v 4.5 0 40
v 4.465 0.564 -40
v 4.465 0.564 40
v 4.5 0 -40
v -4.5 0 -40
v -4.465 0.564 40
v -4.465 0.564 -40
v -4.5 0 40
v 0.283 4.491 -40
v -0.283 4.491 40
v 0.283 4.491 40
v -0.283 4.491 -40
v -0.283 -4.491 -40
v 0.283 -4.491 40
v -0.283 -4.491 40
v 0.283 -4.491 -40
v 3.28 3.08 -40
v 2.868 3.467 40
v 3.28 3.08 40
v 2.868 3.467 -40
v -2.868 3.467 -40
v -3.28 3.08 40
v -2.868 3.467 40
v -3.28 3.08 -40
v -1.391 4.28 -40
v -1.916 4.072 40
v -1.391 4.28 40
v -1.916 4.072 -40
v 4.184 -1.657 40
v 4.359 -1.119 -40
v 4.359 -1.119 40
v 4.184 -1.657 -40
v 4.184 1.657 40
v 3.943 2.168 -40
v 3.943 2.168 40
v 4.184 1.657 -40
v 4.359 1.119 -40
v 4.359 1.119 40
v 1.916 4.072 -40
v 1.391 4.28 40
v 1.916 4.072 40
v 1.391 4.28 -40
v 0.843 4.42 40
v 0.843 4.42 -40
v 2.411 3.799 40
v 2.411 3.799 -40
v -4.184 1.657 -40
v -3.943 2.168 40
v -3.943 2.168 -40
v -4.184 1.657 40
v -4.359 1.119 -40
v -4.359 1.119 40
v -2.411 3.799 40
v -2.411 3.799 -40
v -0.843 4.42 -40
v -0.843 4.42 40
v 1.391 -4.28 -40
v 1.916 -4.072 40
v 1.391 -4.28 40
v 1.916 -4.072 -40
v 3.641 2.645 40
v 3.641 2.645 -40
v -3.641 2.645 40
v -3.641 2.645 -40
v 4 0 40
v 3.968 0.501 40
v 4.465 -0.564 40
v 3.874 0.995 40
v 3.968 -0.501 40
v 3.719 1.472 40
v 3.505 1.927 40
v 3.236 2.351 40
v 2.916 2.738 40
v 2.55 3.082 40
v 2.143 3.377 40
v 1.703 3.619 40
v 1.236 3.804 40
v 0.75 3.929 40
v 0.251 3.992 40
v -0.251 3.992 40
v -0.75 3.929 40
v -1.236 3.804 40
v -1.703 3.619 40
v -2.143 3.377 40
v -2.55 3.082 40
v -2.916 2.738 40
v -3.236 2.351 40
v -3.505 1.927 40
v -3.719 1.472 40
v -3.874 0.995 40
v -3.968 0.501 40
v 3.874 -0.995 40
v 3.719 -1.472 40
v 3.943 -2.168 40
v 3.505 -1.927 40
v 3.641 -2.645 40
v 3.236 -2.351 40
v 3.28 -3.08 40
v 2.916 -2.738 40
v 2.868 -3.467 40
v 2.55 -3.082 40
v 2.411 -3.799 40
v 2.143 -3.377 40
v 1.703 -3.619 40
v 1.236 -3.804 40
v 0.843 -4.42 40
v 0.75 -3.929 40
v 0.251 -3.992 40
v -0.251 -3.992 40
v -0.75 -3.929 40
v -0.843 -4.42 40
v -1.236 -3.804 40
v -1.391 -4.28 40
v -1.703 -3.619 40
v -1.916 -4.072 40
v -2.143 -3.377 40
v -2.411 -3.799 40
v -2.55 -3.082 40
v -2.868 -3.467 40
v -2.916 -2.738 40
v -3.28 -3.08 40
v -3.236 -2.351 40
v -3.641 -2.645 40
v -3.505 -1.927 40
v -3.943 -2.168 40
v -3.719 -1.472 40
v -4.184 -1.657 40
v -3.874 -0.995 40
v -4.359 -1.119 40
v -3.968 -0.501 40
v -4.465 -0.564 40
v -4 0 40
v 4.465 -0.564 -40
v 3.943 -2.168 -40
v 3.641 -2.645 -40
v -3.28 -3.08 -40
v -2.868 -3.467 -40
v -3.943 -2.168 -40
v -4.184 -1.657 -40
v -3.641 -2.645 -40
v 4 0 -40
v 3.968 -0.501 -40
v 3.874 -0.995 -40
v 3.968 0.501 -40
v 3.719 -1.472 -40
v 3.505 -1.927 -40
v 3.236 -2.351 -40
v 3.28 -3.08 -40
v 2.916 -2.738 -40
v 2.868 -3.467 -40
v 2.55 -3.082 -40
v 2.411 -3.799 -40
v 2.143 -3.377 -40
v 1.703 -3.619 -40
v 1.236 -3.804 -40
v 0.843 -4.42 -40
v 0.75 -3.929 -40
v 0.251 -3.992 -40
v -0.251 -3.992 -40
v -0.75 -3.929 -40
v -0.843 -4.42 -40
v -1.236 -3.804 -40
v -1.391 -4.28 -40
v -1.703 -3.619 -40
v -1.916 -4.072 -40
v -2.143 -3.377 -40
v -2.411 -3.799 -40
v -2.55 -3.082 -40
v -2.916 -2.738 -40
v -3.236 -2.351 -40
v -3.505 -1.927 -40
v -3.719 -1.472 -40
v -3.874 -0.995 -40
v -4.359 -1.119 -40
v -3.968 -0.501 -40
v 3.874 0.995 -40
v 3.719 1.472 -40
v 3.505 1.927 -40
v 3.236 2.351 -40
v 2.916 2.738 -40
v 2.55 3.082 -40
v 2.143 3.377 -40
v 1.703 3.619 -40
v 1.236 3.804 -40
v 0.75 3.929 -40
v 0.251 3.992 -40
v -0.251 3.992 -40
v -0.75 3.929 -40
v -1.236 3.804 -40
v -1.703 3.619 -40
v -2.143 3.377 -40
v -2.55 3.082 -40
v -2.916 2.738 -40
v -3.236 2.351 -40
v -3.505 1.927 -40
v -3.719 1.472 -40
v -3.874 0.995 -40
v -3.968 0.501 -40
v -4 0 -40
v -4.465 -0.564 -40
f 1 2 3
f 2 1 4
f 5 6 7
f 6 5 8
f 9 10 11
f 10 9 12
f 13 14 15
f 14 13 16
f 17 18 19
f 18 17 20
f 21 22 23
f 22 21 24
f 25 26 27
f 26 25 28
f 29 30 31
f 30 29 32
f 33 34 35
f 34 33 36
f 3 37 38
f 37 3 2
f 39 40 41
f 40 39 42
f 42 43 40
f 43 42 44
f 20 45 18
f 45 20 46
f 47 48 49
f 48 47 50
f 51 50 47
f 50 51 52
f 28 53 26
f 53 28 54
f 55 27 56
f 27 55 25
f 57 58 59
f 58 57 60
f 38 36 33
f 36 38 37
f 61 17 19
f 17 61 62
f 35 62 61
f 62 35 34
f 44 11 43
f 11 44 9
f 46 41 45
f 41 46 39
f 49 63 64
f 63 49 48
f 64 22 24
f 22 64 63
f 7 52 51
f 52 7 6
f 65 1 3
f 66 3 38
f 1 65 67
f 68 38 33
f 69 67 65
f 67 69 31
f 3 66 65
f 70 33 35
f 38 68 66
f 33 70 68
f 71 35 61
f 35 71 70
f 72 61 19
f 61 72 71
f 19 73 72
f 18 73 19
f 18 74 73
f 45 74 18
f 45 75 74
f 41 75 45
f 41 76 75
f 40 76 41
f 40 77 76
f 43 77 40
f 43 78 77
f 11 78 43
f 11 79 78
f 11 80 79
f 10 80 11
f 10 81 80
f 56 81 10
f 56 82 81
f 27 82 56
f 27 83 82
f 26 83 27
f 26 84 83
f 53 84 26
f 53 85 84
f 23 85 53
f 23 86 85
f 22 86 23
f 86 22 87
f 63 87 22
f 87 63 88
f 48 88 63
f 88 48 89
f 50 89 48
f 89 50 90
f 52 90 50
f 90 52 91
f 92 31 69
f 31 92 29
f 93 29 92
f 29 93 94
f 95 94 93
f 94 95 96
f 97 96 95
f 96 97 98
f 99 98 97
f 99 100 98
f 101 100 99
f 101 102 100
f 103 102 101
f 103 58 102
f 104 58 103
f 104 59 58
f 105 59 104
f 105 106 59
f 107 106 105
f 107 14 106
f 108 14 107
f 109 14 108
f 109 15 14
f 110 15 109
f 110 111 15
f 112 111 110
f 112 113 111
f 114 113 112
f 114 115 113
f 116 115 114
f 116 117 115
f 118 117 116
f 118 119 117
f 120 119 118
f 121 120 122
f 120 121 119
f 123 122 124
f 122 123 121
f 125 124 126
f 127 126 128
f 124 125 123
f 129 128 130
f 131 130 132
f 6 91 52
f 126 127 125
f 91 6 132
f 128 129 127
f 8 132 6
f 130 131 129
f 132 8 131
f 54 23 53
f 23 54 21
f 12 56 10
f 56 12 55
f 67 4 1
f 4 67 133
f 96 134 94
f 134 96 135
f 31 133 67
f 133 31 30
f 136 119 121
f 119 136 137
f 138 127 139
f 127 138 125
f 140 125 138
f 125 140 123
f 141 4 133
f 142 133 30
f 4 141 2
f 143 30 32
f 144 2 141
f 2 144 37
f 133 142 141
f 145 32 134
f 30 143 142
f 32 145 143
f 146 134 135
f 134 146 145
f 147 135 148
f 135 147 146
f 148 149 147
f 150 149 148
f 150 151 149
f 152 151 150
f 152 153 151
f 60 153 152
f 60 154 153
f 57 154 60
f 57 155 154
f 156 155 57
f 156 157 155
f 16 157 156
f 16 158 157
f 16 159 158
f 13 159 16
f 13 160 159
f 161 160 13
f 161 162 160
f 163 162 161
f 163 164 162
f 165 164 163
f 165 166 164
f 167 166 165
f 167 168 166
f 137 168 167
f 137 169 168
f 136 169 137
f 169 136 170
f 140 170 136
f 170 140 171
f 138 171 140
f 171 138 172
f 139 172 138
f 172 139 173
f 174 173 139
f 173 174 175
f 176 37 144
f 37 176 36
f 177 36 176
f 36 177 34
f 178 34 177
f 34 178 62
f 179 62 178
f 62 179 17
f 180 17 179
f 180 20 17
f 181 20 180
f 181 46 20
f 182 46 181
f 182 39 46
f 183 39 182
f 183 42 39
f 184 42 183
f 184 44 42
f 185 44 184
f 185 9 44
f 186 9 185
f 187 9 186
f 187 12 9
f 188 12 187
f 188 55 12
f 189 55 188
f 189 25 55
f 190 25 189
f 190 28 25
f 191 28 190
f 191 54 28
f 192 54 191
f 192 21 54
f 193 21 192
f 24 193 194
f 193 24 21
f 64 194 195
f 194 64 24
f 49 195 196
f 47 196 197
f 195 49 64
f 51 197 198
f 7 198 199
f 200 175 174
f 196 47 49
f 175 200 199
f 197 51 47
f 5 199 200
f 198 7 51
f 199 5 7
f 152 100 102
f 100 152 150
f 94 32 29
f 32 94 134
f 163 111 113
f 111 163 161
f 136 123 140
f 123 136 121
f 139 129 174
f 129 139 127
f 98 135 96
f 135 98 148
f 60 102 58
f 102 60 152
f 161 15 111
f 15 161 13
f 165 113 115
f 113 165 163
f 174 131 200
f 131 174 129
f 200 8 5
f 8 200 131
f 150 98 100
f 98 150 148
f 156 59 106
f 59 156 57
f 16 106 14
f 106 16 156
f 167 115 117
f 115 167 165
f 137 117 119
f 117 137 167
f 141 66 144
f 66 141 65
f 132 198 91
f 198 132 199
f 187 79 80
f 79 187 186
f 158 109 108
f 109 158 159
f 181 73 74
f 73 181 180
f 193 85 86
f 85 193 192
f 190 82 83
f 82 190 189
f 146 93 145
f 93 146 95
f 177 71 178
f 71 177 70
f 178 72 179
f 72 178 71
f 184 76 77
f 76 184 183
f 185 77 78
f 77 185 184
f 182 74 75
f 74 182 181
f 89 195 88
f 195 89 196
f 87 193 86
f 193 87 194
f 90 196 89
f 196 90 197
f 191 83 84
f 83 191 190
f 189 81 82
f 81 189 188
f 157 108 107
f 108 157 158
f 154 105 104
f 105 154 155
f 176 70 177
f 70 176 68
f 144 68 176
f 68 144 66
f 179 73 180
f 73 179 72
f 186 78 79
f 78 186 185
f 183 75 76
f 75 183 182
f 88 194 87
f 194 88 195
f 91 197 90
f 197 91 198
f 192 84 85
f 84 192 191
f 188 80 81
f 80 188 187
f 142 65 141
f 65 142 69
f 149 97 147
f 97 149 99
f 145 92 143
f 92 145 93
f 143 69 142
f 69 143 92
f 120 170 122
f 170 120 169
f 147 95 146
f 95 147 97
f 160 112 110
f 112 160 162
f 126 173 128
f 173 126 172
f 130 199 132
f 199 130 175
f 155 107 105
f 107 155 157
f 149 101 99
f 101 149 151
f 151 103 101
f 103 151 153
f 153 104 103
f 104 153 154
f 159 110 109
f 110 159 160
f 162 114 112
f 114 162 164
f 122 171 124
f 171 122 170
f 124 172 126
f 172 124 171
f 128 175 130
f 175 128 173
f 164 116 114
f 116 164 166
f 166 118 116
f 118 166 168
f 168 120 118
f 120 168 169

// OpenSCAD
$fn = 50;


difference() {
	union() {
		translate(v = [0, 0, -40.0000000000]) {
			cylinder(h = 80, r = 4.5000000000);
		}
	}
	union() {
		translate(v = [0, 0, -100.0000000000]) {
			cylinder(h = 200, r = 4);
		}
	}
}
